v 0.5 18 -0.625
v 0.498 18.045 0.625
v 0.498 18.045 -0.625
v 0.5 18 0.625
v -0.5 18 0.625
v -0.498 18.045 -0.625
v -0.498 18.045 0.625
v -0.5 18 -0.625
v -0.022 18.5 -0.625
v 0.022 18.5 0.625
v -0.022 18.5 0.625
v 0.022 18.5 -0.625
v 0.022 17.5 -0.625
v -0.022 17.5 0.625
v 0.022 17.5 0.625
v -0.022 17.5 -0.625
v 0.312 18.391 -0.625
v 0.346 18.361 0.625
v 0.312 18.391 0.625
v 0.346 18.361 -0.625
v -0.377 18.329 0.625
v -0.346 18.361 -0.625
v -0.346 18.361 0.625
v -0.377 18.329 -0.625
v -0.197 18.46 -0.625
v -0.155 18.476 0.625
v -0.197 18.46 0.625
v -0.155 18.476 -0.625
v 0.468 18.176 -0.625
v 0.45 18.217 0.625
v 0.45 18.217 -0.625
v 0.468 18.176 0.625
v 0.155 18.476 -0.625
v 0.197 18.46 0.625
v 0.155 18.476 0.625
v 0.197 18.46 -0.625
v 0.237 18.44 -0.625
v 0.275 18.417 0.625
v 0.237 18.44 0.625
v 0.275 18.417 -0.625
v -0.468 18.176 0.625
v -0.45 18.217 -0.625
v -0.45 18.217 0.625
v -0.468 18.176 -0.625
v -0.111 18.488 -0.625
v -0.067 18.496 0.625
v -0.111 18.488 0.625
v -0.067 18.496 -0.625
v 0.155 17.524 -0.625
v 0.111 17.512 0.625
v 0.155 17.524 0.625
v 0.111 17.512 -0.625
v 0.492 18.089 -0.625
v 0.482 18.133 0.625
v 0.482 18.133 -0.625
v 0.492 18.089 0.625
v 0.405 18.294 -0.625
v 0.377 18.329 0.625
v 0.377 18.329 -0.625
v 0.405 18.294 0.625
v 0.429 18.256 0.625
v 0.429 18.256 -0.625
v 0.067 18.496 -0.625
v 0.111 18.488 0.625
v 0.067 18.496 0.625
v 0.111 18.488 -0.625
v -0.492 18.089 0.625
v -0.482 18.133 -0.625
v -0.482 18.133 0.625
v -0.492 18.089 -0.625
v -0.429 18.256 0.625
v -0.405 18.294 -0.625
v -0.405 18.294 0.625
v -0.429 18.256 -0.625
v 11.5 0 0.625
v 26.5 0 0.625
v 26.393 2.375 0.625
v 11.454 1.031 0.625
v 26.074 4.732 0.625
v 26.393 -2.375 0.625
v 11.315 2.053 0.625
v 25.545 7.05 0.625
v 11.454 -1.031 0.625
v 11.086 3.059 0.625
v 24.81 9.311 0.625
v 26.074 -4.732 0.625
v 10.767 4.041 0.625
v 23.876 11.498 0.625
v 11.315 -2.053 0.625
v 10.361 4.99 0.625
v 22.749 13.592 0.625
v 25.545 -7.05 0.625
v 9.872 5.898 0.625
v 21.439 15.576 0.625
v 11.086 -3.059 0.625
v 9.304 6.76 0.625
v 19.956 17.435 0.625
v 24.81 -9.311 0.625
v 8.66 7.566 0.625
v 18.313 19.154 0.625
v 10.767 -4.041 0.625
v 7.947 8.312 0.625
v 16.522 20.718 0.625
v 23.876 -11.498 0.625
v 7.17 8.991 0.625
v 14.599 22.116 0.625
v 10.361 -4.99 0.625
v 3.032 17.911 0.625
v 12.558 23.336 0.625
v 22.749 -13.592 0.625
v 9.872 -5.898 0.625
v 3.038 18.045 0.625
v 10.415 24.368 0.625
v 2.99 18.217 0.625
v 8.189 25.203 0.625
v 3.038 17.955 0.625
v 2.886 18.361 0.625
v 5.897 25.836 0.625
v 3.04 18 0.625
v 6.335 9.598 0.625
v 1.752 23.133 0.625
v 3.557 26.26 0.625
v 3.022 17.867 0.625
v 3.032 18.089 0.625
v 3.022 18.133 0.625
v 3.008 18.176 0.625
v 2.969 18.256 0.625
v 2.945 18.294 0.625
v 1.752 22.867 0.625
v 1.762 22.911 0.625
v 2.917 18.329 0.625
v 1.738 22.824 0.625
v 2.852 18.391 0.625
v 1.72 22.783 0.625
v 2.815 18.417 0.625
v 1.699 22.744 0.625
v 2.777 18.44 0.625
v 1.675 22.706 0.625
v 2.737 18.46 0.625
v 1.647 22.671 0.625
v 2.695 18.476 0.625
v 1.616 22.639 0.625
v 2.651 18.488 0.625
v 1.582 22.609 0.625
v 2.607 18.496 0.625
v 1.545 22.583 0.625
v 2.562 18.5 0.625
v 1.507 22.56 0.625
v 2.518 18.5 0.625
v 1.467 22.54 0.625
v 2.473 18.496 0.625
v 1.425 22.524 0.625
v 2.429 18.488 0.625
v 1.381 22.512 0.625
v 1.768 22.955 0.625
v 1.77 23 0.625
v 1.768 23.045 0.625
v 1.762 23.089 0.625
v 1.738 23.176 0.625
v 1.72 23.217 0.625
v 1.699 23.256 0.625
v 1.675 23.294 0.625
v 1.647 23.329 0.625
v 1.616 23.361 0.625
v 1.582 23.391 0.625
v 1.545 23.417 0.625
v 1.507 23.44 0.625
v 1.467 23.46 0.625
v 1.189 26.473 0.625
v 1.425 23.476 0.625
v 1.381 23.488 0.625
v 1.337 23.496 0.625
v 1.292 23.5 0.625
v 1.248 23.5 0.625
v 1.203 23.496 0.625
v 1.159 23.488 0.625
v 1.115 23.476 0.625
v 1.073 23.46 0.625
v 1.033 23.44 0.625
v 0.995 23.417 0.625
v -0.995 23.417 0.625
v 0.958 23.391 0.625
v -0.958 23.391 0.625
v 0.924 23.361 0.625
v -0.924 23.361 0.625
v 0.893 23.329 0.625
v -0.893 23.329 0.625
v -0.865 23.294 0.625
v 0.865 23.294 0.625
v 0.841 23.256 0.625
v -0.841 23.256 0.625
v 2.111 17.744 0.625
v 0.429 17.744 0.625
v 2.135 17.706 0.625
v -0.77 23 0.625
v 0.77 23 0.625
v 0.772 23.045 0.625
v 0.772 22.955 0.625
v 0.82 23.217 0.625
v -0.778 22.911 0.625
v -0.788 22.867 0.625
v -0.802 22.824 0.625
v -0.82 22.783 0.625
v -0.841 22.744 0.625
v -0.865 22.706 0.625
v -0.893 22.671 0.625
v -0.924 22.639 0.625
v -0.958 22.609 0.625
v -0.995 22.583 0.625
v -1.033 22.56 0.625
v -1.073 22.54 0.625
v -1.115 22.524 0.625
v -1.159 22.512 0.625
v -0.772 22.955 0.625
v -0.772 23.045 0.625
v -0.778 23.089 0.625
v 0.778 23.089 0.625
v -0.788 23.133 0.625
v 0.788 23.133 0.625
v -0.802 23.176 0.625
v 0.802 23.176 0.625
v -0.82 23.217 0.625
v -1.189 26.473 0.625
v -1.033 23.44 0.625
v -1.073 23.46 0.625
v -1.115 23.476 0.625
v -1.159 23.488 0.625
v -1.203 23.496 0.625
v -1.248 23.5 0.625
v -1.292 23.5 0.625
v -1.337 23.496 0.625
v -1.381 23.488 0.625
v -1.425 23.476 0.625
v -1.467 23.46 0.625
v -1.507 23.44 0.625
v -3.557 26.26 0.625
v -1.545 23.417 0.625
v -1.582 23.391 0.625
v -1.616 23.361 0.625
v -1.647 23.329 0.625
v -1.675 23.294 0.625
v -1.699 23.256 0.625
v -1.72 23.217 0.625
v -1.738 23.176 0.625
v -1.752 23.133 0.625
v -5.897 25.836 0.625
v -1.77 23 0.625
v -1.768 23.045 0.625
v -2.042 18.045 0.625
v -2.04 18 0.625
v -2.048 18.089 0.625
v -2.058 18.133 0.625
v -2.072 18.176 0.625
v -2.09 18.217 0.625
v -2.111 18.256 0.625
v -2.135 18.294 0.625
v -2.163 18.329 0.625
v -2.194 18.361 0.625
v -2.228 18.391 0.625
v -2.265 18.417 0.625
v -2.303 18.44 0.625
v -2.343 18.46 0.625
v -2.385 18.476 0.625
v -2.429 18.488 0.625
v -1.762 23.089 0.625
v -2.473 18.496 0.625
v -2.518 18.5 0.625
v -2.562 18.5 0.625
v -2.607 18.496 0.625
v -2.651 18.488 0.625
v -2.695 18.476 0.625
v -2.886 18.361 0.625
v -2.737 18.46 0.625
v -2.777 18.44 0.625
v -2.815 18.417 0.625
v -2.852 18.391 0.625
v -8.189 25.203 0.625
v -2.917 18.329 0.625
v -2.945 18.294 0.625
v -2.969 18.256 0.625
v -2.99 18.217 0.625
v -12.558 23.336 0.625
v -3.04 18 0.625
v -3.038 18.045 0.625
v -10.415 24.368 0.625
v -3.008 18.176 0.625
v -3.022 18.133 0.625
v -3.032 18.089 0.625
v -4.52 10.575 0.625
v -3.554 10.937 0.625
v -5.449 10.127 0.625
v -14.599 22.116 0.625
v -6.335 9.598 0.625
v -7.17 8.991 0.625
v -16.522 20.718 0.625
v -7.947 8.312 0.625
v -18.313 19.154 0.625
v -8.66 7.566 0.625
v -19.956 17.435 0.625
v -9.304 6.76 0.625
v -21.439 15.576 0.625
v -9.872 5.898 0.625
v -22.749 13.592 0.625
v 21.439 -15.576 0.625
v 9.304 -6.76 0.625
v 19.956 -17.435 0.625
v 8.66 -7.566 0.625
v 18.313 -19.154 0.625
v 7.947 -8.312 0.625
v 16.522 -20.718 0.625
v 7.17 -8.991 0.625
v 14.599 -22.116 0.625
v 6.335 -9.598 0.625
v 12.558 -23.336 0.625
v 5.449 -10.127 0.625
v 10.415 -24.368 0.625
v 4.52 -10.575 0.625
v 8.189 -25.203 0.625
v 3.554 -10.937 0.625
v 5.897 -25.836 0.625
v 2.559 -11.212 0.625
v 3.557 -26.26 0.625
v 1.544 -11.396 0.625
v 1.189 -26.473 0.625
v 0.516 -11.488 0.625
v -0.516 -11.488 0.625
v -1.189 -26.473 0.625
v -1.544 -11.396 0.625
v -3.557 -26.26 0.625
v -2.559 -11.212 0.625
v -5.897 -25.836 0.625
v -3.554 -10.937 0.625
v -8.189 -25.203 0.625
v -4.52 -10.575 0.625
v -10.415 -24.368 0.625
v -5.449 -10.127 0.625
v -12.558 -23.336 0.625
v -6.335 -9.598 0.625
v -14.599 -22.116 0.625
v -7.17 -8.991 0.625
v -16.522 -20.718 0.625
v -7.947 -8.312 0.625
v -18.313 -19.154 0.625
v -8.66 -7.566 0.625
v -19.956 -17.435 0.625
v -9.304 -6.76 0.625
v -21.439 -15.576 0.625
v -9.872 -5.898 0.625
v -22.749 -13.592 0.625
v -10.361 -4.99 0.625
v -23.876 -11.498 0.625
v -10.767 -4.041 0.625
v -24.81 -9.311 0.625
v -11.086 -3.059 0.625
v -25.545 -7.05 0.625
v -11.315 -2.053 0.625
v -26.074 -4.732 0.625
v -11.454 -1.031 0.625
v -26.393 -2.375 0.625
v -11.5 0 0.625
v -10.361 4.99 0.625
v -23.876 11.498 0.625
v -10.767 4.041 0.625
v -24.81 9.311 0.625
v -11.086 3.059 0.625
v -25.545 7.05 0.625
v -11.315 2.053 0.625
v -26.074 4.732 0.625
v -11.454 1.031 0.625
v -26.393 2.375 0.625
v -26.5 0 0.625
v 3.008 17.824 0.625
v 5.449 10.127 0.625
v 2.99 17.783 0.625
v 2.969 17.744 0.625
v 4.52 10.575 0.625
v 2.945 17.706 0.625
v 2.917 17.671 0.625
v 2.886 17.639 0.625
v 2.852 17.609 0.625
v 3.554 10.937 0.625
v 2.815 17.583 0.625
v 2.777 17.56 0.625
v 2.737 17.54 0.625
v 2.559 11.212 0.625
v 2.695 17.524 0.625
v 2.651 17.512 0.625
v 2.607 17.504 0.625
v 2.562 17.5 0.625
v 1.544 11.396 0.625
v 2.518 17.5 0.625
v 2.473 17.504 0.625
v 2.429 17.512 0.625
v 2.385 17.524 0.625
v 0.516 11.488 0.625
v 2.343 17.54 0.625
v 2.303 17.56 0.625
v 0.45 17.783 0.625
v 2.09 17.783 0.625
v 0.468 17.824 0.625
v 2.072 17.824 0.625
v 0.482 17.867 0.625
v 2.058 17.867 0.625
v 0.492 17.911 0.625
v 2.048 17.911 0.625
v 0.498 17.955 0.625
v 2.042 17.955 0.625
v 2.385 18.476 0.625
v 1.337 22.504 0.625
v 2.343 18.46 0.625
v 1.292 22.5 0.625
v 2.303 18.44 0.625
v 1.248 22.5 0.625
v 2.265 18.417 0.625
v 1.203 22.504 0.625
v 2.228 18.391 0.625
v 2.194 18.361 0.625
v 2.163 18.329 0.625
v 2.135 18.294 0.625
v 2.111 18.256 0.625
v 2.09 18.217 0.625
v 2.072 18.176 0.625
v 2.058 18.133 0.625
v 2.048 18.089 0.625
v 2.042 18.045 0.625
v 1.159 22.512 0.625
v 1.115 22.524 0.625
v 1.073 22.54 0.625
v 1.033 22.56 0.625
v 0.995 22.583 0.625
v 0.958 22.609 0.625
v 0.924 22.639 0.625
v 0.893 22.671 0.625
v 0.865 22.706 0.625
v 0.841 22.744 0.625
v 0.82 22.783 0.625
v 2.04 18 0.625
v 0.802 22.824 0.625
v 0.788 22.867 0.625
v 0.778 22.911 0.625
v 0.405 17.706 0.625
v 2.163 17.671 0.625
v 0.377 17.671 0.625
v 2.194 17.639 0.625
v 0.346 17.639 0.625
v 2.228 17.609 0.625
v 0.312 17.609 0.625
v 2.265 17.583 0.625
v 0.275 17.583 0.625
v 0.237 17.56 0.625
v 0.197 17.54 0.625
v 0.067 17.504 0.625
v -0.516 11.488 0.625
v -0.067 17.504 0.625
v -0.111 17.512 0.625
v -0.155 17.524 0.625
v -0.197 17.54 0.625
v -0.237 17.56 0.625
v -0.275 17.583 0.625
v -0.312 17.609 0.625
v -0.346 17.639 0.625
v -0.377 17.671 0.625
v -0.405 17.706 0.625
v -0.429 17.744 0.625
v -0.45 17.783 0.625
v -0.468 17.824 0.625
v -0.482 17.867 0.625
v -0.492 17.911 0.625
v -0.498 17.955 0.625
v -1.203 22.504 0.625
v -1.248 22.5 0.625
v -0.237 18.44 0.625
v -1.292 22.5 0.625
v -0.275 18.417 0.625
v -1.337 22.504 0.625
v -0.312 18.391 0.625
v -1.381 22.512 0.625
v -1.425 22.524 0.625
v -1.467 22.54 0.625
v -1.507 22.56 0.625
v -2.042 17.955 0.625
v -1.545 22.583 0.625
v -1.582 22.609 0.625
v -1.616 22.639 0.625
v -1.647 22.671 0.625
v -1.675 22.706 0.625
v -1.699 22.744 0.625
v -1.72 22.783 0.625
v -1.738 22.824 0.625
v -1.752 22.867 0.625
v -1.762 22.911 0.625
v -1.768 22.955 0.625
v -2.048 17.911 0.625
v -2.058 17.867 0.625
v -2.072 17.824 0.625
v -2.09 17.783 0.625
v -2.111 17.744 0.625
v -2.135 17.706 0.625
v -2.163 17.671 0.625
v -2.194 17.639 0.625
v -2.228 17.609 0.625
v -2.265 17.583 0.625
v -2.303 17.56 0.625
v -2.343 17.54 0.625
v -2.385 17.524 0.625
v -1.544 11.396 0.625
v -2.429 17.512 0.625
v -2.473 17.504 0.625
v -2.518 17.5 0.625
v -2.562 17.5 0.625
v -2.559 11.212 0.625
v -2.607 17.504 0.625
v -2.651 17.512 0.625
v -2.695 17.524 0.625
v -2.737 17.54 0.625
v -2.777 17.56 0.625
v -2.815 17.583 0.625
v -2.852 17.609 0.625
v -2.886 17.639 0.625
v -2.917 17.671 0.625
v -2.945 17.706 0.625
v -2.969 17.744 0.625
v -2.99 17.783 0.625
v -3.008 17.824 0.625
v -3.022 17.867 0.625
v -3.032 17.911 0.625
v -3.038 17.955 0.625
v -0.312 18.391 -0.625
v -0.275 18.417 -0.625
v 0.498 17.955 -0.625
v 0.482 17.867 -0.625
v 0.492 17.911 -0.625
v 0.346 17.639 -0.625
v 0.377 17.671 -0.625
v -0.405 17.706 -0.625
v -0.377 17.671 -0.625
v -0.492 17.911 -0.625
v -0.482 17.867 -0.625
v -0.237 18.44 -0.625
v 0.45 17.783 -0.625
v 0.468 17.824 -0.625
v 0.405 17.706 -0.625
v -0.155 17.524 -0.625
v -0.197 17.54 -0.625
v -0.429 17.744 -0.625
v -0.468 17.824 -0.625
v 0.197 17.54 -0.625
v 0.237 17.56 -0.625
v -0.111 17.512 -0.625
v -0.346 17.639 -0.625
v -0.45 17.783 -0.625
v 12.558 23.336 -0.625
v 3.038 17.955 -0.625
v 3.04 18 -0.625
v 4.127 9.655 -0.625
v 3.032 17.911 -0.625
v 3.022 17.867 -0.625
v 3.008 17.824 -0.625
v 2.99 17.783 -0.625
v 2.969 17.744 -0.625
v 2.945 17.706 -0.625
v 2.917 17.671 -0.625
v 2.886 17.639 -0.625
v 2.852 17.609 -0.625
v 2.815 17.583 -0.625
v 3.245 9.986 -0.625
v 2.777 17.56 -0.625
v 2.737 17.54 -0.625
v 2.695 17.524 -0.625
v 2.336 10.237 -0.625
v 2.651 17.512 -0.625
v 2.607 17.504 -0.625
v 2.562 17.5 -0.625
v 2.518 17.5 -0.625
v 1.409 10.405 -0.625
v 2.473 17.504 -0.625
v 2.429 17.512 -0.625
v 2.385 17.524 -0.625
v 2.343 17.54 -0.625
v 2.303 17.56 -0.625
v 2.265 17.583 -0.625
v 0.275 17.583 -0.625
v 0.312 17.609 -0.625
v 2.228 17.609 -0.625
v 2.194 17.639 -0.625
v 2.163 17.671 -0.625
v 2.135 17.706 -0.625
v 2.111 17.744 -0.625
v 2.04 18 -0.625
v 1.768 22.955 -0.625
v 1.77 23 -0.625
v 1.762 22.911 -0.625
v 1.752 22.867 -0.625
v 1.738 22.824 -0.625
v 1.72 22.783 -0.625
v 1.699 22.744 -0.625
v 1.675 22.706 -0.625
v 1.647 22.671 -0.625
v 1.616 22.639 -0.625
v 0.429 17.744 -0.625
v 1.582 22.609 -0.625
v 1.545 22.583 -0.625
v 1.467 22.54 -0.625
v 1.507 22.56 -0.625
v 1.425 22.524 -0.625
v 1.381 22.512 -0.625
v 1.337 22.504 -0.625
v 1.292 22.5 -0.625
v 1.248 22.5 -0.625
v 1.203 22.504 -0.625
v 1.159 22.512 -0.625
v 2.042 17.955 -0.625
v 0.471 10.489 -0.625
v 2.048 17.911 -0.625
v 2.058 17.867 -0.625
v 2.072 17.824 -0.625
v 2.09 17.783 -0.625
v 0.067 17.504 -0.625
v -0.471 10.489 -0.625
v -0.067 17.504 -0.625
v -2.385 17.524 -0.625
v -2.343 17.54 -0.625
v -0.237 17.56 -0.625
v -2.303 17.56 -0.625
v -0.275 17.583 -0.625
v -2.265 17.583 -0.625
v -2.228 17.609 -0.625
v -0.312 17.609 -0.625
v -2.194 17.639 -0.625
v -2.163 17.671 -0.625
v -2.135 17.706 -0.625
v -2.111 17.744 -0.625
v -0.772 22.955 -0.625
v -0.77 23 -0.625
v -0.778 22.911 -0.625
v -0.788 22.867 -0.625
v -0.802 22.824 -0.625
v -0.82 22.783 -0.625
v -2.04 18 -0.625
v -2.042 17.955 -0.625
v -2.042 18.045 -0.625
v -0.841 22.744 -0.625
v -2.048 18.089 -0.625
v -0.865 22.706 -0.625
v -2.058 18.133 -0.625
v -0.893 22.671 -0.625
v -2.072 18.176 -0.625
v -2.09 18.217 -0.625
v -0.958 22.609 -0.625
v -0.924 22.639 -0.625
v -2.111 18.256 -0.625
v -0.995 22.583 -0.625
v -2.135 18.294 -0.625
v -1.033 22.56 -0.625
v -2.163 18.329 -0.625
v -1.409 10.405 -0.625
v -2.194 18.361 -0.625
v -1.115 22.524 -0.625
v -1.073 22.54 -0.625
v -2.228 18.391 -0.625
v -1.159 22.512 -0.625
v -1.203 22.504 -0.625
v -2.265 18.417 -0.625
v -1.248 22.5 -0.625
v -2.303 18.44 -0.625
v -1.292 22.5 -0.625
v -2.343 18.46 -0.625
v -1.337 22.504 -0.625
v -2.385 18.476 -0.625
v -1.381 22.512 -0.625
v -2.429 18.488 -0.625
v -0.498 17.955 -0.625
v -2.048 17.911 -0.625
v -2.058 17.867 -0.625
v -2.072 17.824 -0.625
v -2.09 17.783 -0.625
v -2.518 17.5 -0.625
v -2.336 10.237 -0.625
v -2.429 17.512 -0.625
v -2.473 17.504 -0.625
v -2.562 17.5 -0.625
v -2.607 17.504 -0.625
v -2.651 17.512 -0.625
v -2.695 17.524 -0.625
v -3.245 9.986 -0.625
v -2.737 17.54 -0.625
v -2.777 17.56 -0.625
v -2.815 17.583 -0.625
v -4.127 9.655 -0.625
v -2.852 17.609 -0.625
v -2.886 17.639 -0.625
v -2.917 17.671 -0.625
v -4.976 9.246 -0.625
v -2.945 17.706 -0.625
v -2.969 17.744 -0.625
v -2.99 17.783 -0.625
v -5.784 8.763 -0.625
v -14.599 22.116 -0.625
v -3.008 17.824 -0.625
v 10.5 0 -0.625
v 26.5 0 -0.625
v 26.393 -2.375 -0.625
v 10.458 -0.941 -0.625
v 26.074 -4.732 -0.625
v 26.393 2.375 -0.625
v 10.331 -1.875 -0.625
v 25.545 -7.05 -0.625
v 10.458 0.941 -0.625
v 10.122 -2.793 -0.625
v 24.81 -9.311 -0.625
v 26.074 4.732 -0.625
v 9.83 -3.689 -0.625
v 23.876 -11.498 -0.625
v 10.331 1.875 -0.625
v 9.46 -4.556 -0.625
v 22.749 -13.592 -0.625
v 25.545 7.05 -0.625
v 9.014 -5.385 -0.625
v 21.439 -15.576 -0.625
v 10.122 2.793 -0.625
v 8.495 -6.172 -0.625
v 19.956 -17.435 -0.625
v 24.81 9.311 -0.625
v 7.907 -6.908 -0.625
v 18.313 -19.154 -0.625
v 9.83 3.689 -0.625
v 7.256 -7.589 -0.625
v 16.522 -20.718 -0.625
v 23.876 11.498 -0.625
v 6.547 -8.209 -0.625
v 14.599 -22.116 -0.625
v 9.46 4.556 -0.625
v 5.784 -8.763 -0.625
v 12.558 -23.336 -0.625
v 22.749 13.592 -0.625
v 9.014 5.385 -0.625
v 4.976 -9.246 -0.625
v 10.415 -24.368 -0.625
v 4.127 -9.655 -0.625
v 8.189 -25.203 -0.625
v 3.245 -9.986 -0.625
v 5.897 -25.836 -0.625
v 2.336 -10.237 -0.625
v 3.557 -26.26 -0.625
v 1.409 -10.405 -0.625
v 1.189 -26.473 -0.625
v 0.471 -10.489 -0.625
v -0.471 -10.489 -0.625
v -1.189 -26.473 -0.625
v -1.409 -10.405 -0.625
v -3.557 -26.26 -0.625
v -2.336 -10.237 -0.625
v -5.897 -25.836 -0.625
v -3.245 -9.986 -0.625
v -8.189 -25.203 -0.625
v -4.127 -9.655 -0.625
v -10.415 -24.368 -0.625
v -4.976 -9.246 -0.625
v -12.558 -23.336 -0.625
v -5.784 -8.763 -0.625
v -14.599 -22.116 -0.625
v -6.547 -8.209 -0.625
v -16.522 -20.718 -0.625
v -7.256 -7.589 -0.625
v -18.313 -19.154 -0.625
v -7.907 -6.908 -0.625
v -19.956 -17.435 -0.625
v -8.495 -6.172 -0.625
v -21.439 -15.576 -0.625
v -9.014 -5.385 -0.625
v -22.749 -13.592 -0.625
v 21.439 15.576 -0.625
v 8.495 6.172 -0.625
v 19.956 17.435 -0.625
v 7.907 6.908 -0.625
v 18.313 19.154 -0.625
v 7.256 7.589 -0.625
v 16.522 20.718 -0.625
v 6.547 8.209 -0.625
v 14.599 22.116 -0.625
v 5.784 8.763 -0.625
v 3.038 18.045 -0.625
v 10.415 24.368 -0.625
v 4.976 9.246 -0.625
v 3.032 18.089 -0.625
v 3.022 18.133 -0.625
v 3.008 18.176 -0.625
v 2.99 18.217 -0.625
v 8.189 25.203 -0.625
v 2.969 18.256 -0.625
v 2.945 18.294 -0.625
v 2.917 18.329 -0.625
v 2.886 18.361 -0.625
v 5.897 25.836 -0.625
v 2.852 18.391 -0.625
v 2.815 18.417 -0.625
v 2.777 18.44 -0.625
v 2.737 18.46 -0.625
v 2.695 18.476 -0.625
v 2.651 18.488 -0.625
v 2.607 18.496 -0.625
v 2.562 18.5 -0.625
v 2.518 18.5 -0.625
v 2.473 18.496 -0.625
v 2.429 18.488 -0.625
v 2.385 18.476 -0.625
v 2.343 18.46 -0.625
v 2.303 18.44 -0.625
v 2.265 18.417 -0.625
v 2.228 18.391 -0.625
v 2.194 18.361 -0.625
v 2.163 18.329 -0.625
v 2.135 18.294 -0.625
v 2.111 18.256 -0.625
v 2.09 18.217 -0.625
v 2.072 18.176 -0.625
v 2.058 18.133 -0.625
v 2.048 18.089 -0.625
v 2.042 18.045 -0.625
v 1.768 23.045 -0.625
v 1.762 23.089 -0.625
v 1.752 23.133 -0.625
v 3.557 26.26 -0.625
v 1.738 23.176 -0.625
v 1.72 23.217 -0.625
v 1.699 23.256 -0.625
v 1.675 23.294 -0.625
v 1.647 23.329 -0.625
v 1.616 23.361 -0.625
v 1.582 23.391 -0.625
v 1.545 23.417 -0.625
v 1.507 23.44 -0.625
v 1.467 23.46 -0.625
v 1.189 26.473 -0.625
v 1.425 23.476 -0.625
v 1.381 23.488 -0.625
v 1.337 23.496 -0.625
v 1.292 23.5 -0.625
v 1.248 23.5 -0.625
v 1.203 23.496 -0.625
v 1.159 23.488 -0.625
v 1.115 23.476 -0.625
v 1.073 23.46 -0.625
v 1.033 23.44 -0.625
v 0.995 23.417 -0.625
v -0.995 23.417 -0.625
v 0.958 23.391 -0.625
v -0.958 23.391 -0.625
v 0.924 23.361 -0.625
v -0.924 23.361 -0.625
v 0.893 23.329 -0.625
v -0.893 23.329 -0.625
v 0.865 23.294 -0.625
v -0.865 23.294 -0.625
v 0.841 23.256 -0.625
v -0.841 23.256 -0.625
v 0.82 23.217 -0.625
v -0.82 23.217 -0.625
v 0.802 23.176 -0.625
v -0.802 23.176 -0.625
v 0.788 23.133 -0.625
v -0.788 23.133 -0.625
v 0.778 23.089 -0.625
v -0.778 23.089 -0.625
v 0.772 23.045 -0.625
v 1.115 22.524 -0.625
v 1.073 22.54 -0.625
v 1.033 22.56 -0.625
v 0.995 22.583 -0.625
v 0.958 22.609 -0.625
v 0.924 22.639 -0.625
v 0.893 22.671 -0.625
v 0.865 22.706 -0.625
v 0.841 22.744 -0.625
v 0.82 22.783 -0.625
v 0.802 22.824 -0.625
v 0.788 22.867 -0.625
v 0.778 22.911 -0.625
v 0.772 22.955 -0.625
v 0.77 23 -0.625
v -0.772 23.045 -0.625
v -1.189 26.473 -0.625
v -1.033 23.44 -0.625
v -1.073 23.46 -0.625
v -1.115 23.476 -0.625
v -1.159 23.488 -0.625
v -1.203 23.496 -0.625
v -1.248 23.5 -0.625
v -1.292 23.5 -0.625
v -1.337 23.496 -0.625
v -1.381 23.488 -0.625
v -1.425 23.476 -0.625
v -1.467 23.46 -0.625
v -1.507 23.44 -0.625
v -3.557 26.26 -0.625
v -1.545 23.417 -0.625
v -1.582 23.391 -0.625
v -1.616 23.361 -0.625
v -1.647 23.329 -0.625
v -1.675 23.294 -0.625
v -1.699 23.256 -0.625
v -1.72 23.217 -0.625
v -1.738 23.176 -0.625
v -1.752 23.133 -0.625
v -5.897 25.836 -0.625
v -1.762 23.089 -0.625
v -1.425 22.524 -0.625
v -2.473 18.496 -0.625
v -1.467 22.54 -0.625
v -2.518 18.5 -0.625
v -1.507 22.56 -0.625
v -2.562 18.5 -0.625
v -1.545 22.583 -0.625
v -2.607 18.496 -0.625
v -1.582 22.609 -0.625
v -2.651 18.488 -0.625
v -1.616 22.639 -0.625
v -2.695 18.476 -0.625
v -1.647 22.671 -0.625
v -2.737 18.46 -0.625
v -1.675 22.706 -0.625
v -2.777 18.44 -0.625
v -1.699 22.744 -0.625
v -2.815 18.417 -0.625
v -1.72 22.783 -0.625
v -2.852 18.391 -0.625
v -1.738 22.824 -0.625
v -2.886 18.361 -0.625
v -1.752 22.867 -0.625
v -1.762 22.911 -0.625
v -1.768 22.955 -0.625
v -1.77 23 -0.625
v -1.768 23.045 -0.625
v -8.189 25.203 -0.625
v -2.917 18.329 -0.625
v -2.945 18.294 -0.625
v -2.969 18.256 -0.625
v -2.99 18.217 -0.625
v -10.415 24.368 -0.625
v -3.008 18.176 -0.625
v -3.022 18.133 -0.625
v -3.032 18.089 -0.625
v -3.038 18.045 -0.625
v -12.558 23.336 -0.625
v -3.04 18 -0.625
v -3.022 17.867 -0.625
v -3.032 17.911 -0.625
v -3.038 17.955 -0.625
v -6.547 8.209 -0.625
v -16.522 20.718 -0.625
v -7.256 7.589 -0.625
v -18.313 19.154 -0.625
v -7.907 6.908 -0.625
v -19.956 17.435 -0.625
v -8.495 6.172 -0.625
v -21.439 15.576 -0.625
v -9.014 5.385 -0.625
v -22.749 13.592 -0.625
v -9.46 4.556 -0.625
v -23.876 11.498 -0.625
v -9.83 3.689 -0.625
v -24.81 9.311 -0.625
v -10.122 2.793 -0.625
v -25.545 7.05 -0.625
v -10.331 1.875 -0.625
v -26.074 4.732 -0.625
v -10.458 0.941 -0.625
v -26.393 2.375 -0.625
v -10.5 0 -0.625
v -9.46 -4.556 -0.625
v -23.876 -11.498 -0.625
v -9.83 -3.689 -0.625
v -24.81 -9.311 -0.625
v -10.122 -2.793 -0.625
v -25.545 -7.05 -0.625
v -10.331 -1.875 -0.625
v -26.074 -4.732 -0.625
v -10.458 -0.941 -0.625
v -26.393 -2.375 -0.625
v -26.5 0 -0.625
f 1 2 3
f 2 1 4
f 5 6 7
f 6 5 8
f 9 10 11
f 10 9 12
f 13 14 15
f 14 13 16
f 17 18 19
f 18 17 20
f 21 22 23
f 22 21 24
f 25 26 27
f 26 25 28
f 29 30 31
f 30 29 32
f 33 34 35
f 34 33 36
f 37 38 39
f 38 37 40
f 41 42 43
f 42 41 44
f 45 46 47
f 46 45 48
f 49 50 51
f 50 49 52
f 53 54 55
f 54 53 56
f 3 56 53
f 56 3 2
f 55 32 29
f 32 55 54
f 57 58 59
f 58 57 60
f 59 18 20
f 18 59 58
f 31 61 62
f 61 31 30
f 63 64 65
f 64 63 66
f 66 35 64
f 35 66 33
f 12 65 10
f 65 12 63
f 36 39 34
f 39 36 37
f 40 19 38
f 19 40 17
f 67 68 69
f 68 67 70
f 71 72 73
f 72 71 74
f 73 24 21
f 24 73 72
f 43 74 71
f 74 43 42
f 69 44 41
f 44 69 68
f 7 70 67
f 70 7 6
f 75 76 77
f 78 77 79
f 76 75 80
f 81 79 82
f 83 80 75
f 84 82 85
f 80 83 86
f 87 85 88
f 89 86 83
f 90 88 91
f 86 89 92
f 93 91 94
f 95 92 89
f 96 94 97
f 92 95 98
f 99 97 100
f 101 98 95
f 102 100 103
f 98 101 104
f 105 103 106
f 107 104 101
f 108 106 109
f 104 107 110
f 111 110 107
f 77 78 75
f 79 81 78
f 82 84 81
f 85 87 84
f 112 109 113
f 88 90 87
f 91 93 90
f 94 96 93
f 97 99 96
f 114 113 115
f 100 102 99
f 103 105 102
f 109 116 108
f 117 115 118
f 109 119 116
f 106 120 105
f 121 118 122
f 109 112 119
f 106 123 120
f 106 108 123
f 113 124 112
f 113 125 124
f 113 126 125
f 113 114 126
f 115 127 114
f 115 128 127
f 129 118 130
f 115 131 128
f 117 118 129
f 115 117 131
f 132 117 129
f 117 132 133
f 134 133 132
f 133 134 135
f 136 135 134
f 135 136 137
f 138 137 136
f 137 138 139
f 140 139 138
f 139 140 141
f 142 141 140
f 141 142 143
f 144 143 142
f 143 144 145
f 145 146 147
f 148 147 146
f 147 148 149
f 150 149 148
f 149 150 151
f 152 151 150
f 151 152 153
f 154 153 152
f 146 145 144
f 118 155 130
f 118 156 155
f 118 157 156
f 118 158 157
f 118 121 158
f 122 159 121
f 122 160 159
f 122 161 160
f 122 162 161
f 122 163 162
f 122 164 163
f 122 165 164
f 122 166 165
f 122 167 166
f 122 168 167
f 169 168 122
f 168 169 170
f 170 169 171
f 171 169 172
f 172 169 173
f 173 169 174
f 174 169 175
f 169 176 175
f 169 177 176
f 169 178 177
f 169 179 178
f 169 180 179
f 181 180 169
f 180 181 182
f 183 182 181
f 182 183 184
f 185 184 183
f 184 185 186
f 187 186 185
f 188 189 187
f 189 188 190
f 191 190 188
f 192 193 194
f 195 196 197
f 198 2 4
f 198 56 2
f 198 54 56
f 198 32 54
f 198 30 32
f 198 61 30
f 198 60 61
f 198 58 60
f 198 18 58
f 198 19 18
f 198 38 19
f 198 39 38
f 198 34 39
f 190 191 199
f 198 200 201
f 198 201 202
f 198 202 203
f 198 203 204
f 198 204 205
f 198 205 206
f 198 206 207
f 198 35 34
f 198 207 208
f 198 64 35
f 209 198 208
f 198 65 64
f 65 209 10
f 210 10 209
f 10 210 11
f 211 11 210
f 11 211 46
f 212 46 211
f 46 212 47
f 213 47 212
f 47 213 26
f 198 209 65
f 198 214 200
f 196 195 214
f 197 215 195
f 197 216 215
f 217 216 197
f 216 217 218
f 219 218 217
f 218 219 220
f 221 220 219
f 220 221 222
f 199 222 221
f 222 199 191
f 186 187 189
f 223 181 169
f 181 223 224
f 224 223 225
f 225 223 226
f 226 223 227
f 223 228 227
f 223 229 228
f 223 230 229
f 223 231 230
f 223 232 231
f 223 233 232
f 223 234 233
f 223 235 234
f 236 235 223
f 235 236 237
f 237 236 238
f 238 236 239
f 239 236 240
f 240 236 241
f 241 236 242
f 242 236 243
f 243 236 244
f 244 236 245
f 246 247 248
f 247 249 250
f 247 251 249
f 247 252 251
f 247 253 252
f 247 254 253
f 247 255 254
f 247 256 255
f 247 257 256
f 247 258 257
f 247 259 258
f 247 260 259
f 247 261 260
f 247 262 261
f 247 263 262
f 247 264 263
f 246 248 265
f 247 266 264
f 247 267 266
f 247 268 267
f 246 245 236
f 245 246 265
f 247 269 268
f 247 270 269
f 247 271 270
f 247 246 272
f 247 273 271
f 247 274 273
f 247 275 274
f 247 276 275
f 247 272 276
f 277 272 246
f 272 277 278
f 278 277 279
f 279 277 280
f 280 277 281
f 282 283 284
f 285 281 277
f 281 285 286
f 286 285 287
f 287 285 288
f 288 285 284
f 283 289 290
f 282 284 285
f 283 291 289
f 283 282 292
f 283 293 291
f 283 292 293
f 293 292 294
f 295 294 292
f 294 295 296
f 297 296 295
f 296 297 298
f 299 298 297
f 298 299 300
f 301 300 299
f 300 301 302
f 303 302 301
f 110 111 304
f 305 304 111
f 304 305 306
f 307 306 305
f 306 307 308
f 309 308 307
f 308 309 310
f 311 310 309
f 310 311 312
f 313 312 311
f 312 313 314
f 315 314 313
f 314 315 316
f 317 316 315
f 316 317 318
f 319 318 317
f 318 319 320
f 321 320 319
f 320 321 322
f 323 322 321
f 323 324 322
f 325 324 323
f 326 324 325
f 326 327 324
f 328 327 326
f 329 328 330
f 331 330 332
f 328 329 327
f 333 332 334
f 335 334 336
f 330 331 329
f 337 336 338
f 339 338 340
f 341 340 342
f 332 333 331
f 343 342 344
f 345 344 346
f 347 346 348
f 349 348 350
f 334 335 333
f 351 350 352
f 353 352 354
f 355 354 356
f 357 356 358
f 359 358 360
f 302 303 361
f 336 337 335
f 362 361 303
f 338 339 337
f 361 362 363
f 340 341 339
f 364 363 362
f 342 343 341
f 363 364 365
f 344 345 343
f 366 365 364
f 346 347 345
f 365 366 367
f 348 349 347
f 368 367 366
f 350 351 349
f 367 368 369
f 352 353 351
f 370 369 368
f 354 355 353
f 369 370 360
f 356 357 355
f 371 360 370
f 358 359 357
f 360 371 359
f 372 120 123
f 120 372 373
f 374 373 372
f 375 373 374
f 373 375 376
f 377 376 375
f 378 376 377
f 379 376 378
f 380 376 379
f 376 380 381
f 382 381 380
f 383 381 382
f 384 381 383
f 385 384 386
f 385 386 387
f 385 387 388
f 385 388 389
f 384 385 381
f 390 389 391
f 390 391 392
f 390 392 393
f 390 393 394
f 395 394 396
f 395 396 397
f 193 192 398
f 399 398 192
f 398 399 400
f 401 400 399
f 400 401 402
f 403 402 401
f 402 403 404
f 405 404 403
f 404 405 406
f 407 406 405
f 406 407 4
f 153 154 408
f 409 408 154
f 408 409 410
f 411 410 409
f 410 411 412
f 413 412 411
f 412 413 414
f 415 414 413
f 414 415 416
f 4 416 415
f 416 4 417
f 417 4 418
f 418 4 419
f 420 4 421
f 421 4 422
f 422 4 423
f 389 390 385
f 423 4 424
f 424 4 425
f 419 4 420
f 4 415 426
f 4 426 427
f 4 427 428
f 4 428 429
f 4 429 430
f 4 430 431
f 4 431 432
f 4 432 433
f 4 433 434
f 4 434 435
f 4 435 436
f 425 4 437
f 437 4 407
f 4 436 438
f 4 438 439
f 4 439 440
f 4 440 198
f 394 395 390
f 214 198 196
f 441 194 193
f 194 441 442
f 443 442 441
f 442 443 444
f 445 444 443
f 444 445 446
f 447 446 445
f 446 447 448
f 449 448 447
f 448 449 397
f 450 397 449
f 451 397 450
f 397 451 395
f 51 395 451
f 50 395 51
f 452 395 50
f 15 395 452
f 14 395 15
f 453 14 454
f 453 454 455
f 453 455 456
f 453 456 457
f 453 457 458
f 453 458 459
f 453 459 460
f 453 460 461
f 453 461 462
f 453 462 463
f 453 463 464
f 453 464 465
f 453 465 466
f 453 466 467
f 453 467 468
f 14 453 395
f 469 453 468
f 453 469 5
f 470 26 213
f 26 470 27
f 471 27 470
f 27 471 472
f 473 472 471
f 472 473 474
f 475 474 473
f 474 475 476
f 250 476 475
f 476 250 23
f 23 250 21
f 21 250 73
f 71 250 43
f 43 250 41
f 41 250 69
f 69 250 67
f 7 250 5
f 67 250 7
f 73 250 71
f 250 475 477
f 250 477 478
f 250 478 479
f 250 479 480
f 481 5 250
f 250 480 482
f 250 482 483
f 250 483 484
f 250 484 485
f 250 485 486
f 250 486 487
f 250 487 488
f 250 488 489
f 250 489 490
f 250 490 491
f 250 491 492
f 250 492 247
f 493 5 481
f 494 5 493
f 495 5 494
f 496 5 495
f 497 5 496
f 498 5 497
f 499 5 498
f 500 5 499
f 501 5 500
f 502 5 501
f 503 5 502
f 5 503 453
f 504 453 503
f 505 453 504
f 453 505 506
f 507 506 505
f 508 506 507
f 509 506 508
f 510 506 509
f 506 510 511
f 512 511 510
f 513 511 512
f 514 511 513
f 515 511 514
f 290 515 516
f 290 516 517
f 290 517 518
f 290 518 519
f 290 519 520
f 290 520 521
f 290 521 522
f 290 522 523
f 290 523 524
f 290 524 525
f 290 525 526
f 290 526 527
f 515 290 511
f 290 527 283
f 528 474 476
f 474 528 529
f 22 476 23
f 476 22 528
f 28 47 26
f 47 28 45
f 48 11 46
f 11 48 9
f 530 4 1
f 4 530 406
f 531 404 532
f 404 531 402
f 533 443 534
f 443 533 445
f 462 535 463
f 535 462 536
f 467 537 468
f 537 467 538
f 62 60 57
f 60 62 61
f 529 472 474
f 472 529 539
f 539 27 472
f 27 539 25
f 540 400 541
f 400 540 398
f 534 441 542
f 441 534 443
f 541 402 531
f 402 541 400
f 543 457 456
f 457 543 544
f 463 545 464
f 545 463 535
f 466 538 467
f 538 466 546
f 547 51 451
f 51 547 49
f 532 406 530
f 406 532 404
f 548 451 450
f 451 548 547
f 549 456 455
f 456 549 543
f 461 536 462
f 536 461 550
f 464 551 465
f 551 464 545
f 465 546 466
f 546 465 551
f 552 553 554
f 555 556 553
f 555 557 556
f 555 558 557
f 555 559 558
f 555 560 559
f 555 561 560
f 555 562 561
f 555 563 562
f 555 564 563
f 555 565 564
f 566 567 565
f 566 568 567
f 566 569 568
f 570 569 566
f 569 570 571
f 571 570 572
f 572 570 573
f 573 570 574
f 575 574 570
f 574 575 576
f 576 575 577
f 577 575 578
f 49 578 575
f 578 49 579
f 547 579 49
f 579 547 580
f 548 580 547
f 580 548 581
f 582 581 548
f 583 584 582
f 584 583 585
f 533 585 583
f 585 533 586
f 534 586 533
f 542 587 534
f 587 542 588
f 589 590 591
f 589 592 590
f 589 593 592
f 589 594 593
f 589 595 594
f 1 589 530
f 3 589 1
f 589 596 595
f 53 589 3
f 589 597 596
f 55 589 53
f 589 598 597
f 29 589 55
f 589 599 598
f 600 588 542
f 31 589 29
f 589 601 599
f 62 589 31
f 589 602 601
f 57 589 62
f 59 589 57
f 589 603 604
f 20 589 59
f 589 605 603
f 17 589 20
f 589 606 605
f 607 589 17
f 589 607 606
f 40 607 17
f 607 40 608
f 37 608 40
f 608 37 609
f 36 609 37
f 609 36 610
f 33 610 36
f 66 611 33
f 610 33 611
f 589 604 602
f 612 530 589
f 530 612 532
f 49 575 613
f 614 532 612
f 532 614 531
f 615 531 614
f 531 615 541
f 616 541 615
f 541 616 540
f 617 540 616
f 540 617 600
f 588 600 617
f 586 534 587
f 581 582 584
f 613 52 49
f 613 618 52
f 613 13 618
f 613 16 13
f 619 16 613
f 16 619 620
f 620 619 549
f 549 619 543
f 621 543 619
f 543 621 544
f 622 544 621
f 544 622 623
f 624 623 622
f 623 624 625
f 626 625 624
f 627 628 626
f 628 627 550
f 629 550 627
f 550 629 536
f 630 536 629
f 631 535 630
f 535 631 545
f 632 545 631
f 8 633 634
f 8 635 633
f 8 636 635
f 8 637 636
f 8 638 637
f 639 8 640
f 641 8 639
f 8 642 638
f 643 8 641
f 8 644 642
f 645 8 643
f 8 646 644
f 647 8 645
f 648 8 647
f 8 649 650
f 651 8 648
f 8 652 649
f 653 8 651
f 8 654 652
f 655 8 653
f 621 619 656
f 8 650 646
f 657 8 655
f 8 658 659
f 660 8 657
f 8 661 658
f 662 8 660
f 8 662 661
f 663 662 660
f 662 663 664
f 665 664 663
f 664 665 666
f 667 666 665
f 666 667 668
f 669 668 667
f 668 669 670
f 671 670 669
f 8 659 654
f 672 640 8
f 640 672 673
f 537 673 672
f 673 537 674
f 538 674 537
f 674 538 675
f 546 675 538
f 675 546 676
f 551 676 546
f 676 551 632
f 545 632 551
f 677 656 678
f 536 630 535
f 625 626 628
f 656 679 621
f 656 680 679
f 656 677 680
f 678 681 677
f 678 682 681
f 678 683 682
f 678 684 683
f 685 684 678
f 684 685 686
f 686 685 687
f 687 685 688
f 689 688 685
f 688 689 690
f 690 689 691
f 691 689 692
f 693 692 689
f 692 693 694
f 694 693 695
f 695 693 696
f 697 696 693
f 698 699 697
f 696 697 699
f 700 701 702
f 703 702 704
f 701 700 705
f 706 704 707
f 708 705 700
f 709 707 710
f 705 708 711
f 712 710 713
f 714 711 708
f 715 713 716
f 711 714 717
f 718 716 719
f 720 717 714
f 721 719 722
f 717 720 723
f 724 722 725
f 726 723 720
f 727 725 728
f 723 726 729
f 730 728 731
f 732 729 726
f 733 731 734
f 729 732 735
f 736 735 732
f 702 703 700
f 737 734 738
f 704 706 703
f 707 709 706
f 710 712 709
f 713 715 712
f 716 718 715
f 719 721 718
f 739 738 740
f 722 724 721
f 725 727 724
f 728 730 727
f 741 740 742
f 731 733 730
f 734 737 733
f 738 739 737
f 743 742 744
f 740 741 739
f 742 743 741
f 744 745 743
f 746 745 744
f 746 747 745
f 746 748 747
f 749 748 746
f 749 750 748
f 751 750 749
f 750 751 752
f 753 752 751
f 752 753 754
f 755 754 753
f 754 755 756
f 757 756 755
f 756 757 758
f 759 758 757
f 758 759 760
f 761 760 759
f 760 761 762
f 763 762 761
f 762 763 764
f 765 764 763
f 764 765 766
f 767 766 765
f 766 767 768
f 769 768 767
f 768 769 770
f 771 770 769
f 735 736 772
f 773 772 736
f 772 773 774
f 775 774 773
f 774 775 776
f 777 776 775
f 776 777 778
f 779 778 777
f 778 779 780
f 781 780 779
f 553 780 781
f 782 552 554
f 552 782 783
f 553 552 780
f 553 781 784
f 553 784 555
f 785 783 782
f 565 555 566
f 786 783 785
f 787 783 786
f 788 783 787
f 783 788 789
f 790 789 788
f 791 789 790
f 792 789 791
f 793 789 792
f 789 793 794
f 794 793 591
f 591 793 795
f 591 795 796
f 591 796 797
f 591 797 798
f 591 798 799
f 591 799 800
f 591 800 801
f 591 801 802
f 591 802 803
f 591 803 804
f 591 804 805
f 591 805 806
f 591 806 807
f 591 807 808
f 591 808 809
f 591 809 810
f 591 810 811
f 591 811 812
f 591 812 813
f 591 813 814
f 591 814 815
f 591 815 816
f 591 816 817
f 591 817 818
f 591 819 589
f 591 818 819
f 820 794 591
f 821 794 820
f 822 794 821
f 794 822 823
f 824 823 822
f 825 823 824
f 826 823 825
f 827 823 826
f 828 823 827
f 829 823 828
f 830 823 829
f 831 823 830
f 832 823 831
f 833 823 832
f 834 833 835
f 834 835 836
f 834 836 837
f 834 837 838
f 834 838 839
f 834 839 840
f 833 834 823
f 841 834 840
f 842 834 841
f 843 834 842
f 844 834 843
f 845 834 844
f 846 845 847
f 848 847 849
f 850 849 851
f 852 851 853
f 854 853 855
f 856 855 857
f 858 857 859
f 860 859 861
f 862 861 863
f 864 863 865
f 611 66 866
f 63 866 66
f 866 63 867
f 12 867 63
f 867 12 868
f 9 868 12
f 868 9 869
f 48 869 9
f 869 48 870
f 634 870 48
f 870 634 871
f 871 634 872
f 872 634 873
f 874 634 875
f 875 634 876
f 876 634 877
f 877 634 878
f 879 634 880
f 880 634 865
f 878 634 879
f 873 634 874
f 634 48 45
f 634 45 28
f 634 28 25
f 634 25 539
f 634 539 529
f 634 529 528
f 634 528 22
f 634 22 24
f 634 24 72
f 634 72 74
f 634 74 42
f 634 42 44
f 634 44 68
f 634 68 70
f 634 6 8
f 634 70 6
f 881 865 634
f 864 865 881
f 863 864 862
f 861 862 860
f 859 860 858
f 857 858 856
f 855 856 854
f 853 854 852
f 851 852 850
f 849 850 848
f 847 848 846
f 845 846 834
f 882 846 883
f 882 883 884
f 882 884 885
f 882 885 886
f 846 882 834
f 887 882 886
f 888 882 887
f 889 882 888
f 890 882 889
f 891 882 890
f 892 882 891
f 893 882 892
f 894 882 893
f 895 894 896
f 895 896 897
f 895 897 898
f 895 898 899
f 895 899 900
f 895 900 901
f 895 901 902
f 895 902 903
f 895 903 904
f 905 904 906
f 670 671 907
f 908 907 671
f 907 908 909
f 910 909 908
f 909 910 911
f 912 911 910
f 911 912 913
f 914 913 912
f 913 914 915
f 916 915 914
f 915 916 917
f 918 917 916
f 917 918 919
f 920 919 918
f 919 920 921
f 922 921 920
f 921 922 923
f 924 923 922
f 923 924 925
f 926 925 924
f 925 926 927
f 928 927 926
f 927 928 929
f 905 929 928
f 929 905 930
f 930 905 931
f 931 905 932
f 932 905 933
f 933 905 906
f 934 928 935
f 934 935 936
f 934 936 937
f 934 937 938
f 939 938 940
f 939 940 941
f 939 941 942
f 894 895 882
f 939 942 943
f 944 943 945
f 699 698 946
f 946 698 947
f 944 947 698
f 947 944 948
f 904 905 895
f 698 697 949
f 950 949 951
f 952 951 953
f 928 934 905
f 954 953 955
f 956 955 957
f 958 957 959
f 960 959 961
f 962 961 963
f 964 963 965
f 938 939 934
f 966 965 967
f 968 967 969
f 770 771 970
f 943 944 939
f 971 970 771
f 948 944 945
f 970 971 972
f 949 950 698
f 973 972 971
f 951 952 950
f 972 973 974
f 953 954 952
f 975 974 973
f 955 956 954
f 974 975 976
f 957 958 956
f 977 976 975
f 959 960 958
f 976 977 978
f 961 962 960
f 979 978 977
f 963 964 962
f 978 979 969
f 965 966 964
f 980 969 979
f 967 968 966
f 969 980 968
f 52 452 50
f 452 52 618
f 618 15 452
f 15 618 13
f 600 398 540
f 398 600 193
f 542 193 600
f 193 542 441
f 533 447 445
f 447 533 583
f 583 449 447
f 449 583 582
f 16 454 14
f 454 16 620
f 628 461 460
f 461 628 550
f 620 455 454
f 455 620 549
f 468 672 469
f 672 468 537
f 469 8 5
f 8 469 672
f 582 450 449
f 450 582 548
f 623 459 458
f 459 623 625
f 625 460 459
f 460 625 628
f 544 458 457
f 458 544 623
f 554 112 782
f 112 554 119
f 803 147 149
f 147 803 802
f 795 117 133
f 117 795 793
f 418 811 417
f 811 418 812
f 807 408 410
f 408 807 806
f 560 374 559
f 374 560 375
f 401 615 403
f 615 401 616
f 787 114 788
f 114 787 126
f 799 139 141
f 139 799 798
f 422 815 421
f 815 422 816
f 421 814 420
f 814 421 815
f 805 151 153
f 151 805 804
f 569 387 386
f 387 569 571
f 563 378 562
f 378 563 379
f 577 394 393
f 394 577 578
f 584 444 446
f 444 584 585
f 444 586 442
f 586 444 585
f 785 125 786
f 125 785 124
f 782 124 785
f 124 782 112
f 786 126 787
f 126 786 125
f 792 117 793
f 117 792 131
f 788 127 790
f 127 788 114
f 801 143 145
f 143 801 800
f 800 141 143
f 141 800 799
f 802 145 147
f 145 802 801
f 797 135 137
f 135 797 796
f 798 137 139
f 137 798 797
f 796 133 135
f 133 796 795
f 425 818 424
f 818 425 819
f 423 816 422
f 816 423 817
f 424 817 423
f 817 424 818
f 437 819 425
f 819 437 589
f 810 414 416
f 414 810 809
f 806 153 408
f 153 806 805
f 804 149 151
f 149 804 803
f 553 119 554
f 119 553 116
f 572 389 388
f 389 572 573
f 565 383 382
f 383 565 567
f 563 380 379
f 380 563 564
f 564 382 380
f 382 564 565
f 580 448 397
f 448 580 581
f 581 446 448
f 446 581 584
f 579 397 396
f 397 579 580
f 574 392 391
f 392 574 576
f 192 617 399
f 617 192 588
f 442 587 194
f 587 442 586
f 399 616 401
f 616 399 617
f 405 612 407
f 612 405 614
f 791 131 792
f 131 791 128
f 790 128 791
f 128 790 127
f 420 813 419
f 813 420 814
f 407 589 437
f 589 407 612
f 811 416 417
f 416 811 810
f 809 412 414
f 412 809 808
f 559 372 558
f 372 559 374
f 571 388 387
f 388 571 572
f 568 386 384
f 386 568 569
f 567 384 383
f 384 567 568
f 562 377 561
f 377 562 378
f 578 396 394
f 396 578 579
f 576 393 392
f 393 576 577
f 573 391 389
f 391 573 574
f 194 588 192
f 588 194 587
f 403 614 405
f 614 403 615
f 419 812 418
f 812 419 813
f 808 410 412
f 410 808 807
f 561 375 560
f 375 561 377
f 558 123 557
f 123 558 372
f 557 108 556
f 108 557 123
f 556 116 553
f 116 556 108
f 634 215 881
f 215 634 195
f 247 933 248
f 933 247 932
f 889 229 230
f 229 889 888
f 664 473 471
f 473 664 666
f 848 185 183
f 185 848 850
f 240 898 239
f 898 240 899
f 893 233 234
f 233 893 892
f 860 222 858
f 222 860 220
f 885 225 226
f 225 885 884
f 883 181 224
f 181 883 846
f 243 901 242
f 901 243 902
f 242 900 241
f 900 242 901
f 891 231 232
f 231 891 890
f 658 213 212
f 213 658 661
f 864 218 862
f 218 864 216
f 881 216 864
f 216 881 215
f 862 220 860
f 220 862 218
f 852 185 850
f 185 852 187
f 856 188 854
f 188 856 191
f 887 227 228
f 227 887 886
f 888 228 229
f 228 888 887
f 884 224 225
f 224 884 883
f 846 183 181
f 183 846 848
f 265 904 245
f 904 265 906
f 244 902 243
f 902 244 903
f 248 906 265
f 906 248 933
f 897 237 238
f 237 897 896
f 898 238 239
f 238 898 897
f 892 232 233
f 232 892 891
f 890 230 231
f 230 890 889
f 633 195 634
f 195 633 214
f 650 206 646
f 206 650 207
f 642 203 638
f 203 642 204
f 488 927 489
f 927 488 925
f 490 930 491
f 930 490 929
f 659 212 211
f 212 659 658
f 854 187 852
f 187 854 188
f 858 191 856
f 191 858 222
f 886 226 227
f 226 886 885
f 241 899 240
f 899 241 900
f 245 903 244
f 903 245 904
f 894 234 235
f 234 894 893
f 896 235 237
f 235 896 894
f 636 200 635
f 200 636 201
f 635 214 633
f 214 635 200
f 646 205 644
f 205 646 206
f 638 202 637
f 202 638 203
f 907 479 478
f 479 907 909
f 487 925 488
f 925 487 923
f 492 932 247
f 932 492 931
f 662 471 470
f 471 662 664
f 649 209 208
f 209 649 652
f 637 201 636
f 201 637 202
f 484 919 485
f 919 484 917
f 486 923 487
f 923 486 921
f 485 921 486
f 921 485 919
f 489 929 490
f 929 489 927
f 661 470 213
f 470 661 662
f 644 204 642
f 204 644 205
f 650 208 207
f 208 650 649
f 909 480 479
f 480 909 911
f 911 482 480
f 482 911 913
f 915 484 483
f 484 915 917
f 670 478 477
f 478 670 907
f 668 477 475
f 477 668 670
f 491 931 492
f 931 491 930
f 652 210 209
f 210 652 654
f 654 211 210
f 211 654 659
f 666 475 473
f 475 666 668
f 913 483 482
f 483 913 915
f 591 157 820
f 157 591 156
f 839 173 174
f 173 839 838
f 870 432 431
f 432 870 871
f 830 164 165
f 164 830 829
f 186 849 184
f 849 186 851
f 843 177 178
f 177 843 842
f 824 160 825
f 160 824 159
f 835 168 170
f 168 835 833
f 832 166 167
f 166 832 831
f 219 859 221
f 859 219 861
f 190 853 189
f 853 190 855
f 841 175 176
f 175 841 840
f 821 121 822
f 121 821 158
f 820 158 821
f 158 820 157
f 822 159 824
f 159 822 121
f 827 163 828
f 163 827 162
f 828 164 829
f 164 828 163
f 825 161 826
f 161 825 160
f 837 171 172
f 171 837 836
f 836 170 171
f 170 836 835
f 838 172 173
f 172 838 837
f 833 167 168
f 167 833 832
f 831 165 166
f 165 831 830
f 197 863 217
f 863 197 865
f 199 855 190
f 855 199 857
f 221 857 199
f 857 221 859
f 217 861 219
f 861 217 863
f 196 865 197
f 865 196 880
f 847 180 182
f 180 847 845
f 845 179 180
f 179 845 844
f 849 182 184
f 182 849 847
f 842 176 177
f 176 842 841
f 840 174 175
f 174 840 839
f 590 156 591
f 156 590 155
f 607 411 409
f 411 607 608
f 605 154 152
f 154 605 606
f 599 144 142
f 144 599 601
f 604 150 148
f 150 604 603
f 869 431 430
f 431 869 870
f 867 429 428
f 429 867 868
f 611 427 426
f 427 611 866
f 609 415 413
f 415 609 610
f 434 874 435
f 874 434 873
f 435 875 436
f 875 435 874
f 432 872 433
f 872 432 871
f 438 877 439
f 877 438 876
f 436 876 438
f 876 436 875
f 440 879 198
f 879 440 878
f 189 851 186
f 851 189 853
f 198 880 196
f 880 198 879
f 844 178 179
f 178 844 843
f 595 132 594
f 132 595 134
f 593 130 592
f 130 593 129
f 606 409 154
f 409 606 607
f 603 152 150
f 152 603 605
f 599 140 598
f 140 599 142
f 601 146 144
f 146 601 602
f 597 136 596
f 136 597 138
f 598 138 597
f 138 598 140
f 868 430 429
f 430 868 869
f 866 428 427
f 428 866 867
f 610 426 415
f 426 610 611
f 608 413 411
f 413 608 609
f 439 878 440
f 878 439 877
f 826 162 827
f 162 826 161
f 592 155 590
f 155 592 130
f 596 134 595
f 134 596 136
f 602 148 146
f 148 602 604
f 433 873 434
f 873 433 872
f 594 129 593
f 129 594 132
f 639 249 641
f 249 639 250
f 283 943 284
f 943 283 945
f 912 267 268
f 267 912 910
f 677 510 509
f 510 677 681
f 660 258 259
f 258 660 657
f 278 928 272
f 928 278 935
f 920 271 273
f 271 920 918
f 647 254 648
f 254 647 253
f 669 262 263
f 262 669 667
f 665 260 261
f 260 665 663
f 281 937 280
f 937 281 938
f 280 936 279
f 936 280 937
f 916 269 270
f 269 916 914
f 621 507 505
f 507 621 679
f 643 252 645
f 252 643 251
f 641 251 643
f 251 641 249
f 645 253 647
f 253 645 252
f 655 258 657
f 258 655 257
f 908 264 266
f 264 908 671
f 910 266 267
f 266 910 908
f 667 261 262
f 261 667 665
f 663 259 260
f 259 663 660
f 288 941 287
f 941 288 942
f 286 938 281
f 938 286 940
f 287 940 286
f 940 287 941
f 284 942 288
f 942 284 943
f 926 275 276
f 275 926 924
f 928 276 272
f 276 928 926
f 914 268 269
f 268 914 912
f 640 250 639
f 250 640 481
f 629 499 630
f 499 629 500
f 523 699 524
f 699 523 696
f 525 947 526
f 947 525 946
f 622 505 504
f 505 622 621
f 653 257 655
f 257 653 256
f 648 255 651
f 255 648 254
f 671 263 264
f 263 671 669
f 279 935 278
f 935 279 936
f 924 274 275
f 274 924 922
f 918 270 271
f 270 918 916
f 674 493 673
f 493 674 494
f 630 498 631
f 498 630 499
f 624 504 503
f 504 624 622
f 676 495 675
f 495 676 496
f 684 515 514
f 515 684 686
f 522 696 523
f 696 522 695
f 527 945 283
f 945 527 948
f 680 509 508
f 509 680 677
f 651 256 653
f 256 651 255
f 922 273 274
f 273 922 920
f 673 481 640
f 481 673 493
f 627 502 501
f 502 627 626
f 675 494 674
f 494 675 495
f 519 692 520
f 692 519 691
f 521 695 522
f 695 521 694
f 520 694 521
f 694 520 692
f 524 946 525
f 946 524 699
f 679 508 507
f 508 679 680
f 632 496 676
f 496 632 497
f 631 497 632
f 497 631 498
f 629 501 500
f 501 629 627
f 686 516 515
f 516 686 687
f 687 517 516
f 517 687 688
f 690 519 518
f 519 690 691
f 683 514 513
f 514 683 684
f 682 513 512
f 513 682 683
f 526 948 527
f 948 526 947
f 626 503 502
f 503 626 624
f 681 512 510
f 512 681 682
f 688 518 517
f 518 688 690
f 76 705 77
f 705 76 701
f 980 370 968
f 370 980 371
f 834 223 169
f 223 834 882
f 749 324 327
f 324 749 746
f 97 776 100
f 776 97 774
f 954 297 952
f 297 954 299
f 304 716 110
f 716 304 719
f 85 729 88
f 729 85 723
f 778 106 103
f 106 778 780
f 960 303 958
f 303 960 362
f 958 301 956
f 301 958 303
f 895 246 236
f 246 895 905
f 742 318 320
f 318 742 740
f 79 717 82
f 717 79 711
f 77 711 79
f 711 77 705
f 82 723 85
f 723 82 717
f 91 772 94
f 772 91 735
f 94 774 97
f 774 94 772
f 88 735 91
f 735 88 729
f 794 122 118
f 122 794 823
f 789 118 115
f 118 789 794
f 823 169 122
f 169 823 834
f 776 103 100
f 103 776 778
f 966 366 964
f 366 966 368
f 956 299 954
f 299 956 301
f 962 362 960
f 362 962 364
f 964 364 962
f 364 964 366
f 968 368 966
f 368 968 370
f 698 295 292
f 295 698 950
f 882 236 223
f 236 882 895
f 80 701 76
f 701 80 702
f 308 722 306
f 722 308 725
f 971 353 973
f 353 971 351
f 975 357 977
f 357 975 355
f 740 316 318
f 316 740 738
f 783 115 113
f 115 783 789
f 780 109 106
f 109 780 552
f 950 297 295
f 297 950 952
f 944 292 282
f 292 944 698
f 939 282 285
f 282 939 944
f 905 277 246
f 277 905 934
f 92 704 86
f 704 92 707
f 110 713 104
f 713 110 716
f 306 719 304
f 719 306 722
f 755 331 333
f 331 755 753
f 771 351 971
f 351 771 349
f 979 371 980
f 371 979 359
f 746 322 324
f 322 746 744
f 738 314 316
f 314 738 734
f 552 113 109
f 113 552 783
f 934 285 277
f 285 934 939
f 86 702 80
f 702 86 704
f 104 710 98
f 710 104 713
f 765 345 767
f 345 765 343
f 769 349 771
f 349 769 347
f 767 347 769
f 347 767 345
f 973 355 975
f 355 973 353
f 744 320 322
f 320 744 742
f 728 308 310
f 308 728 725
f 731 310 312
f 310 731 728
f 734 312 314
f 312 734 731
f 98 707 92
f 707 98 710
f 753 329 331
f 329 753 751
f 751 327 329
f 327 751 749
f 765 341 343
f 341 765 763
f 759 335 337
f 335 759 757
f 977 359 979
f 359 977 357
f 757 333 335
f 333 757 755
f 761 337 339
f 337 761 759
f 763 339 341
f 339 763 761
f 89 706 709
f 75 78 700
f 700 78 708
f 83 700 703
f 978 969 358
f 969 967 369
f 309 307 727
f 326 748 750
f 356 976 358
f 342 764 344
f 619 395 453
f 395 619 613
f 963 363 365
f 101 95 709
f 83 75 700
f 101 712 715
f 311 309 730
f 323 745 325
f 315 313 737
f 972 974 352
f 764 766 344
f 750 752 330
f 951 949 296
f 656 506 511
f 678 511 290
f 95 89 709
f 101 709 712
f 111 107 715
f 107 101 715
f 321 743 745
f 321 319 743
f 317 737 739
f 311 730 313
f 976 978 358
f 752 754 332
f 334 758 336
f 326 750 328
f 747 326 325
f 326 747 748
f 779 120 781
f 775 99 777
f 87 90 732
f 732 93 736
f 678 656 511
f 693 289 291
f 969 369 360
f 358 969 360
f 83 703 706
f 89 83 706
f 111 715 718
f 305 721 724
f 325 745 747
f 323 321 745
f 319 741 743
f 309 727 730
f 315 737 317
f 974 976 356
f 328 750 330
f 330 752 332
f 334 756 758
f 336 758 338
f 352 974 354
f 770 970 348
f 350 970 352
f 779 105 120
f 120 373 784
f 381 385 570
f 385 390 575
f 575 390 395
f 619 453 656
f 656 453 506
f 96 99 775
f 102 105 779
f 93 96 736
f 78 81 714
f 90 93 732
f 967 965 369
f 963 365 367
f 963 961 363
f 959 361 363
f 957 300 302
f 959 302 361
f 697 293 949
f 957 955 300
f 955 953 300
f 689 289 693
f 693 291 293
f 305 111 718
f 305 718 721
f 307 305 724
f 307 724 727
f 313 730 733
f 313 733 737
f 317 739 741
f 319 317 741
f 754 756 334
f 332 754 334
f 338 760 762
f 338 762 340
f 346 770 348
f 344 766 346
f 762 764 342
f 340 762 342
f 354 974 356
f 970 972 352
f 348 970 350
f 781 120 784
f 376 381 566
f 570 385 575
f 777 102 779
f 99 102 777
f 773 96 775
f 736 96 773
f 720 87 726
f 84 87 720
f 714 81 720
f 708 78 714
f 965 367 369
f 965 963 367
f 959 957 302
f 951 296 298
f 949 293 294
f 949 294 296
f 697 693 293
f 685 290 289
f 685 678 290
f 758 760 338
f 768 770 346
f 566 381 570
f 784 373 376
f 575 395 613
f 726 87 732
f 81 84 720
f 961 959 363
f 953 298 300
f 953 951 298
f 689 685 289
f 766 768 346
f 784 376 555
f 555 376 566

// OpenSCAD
PlateHight=2.5/2;
baseD=53.0;
baseHoleD=21;
holeD=1;
$fn=70;
HoleSpaceing=2.54;//Try:1
module holes(args) {
    // body...
    //three holes

translate([-HoleSpaceing, 0, 0]) {    
cylinder(d=holeD, h=PlateHight, center=true);
translate([HoleSpaceing, 0, 0]) {
    cylinder(d=holeD, h=PlateHight, center=true);
    translate([HoleSpaceing, 0, 0]) {
        cylinder(d=holeD, h=PlateHight, center=true);
        }
}

//tow holes
translate([HoleSpaceing/2, 5, 0]) {
    cylinder(d=holeD, h=PlateHight, center=true);
    translate([HoleSpaceing, 0, 0]) {
    cylinder(d=holeD, h=PlateHight, center=true);
    }
    }
}
}

module base()
{
    difference()
{
cylinder(d=baseD, h=PlateHight, center=true);
cylinder(d1=baseHoleD,d2=baseHoleD+2, h=PlateHight, center=true);

translate([0,baseD/2-8.5,0])
{
holes();
}    


}
}

 base();
